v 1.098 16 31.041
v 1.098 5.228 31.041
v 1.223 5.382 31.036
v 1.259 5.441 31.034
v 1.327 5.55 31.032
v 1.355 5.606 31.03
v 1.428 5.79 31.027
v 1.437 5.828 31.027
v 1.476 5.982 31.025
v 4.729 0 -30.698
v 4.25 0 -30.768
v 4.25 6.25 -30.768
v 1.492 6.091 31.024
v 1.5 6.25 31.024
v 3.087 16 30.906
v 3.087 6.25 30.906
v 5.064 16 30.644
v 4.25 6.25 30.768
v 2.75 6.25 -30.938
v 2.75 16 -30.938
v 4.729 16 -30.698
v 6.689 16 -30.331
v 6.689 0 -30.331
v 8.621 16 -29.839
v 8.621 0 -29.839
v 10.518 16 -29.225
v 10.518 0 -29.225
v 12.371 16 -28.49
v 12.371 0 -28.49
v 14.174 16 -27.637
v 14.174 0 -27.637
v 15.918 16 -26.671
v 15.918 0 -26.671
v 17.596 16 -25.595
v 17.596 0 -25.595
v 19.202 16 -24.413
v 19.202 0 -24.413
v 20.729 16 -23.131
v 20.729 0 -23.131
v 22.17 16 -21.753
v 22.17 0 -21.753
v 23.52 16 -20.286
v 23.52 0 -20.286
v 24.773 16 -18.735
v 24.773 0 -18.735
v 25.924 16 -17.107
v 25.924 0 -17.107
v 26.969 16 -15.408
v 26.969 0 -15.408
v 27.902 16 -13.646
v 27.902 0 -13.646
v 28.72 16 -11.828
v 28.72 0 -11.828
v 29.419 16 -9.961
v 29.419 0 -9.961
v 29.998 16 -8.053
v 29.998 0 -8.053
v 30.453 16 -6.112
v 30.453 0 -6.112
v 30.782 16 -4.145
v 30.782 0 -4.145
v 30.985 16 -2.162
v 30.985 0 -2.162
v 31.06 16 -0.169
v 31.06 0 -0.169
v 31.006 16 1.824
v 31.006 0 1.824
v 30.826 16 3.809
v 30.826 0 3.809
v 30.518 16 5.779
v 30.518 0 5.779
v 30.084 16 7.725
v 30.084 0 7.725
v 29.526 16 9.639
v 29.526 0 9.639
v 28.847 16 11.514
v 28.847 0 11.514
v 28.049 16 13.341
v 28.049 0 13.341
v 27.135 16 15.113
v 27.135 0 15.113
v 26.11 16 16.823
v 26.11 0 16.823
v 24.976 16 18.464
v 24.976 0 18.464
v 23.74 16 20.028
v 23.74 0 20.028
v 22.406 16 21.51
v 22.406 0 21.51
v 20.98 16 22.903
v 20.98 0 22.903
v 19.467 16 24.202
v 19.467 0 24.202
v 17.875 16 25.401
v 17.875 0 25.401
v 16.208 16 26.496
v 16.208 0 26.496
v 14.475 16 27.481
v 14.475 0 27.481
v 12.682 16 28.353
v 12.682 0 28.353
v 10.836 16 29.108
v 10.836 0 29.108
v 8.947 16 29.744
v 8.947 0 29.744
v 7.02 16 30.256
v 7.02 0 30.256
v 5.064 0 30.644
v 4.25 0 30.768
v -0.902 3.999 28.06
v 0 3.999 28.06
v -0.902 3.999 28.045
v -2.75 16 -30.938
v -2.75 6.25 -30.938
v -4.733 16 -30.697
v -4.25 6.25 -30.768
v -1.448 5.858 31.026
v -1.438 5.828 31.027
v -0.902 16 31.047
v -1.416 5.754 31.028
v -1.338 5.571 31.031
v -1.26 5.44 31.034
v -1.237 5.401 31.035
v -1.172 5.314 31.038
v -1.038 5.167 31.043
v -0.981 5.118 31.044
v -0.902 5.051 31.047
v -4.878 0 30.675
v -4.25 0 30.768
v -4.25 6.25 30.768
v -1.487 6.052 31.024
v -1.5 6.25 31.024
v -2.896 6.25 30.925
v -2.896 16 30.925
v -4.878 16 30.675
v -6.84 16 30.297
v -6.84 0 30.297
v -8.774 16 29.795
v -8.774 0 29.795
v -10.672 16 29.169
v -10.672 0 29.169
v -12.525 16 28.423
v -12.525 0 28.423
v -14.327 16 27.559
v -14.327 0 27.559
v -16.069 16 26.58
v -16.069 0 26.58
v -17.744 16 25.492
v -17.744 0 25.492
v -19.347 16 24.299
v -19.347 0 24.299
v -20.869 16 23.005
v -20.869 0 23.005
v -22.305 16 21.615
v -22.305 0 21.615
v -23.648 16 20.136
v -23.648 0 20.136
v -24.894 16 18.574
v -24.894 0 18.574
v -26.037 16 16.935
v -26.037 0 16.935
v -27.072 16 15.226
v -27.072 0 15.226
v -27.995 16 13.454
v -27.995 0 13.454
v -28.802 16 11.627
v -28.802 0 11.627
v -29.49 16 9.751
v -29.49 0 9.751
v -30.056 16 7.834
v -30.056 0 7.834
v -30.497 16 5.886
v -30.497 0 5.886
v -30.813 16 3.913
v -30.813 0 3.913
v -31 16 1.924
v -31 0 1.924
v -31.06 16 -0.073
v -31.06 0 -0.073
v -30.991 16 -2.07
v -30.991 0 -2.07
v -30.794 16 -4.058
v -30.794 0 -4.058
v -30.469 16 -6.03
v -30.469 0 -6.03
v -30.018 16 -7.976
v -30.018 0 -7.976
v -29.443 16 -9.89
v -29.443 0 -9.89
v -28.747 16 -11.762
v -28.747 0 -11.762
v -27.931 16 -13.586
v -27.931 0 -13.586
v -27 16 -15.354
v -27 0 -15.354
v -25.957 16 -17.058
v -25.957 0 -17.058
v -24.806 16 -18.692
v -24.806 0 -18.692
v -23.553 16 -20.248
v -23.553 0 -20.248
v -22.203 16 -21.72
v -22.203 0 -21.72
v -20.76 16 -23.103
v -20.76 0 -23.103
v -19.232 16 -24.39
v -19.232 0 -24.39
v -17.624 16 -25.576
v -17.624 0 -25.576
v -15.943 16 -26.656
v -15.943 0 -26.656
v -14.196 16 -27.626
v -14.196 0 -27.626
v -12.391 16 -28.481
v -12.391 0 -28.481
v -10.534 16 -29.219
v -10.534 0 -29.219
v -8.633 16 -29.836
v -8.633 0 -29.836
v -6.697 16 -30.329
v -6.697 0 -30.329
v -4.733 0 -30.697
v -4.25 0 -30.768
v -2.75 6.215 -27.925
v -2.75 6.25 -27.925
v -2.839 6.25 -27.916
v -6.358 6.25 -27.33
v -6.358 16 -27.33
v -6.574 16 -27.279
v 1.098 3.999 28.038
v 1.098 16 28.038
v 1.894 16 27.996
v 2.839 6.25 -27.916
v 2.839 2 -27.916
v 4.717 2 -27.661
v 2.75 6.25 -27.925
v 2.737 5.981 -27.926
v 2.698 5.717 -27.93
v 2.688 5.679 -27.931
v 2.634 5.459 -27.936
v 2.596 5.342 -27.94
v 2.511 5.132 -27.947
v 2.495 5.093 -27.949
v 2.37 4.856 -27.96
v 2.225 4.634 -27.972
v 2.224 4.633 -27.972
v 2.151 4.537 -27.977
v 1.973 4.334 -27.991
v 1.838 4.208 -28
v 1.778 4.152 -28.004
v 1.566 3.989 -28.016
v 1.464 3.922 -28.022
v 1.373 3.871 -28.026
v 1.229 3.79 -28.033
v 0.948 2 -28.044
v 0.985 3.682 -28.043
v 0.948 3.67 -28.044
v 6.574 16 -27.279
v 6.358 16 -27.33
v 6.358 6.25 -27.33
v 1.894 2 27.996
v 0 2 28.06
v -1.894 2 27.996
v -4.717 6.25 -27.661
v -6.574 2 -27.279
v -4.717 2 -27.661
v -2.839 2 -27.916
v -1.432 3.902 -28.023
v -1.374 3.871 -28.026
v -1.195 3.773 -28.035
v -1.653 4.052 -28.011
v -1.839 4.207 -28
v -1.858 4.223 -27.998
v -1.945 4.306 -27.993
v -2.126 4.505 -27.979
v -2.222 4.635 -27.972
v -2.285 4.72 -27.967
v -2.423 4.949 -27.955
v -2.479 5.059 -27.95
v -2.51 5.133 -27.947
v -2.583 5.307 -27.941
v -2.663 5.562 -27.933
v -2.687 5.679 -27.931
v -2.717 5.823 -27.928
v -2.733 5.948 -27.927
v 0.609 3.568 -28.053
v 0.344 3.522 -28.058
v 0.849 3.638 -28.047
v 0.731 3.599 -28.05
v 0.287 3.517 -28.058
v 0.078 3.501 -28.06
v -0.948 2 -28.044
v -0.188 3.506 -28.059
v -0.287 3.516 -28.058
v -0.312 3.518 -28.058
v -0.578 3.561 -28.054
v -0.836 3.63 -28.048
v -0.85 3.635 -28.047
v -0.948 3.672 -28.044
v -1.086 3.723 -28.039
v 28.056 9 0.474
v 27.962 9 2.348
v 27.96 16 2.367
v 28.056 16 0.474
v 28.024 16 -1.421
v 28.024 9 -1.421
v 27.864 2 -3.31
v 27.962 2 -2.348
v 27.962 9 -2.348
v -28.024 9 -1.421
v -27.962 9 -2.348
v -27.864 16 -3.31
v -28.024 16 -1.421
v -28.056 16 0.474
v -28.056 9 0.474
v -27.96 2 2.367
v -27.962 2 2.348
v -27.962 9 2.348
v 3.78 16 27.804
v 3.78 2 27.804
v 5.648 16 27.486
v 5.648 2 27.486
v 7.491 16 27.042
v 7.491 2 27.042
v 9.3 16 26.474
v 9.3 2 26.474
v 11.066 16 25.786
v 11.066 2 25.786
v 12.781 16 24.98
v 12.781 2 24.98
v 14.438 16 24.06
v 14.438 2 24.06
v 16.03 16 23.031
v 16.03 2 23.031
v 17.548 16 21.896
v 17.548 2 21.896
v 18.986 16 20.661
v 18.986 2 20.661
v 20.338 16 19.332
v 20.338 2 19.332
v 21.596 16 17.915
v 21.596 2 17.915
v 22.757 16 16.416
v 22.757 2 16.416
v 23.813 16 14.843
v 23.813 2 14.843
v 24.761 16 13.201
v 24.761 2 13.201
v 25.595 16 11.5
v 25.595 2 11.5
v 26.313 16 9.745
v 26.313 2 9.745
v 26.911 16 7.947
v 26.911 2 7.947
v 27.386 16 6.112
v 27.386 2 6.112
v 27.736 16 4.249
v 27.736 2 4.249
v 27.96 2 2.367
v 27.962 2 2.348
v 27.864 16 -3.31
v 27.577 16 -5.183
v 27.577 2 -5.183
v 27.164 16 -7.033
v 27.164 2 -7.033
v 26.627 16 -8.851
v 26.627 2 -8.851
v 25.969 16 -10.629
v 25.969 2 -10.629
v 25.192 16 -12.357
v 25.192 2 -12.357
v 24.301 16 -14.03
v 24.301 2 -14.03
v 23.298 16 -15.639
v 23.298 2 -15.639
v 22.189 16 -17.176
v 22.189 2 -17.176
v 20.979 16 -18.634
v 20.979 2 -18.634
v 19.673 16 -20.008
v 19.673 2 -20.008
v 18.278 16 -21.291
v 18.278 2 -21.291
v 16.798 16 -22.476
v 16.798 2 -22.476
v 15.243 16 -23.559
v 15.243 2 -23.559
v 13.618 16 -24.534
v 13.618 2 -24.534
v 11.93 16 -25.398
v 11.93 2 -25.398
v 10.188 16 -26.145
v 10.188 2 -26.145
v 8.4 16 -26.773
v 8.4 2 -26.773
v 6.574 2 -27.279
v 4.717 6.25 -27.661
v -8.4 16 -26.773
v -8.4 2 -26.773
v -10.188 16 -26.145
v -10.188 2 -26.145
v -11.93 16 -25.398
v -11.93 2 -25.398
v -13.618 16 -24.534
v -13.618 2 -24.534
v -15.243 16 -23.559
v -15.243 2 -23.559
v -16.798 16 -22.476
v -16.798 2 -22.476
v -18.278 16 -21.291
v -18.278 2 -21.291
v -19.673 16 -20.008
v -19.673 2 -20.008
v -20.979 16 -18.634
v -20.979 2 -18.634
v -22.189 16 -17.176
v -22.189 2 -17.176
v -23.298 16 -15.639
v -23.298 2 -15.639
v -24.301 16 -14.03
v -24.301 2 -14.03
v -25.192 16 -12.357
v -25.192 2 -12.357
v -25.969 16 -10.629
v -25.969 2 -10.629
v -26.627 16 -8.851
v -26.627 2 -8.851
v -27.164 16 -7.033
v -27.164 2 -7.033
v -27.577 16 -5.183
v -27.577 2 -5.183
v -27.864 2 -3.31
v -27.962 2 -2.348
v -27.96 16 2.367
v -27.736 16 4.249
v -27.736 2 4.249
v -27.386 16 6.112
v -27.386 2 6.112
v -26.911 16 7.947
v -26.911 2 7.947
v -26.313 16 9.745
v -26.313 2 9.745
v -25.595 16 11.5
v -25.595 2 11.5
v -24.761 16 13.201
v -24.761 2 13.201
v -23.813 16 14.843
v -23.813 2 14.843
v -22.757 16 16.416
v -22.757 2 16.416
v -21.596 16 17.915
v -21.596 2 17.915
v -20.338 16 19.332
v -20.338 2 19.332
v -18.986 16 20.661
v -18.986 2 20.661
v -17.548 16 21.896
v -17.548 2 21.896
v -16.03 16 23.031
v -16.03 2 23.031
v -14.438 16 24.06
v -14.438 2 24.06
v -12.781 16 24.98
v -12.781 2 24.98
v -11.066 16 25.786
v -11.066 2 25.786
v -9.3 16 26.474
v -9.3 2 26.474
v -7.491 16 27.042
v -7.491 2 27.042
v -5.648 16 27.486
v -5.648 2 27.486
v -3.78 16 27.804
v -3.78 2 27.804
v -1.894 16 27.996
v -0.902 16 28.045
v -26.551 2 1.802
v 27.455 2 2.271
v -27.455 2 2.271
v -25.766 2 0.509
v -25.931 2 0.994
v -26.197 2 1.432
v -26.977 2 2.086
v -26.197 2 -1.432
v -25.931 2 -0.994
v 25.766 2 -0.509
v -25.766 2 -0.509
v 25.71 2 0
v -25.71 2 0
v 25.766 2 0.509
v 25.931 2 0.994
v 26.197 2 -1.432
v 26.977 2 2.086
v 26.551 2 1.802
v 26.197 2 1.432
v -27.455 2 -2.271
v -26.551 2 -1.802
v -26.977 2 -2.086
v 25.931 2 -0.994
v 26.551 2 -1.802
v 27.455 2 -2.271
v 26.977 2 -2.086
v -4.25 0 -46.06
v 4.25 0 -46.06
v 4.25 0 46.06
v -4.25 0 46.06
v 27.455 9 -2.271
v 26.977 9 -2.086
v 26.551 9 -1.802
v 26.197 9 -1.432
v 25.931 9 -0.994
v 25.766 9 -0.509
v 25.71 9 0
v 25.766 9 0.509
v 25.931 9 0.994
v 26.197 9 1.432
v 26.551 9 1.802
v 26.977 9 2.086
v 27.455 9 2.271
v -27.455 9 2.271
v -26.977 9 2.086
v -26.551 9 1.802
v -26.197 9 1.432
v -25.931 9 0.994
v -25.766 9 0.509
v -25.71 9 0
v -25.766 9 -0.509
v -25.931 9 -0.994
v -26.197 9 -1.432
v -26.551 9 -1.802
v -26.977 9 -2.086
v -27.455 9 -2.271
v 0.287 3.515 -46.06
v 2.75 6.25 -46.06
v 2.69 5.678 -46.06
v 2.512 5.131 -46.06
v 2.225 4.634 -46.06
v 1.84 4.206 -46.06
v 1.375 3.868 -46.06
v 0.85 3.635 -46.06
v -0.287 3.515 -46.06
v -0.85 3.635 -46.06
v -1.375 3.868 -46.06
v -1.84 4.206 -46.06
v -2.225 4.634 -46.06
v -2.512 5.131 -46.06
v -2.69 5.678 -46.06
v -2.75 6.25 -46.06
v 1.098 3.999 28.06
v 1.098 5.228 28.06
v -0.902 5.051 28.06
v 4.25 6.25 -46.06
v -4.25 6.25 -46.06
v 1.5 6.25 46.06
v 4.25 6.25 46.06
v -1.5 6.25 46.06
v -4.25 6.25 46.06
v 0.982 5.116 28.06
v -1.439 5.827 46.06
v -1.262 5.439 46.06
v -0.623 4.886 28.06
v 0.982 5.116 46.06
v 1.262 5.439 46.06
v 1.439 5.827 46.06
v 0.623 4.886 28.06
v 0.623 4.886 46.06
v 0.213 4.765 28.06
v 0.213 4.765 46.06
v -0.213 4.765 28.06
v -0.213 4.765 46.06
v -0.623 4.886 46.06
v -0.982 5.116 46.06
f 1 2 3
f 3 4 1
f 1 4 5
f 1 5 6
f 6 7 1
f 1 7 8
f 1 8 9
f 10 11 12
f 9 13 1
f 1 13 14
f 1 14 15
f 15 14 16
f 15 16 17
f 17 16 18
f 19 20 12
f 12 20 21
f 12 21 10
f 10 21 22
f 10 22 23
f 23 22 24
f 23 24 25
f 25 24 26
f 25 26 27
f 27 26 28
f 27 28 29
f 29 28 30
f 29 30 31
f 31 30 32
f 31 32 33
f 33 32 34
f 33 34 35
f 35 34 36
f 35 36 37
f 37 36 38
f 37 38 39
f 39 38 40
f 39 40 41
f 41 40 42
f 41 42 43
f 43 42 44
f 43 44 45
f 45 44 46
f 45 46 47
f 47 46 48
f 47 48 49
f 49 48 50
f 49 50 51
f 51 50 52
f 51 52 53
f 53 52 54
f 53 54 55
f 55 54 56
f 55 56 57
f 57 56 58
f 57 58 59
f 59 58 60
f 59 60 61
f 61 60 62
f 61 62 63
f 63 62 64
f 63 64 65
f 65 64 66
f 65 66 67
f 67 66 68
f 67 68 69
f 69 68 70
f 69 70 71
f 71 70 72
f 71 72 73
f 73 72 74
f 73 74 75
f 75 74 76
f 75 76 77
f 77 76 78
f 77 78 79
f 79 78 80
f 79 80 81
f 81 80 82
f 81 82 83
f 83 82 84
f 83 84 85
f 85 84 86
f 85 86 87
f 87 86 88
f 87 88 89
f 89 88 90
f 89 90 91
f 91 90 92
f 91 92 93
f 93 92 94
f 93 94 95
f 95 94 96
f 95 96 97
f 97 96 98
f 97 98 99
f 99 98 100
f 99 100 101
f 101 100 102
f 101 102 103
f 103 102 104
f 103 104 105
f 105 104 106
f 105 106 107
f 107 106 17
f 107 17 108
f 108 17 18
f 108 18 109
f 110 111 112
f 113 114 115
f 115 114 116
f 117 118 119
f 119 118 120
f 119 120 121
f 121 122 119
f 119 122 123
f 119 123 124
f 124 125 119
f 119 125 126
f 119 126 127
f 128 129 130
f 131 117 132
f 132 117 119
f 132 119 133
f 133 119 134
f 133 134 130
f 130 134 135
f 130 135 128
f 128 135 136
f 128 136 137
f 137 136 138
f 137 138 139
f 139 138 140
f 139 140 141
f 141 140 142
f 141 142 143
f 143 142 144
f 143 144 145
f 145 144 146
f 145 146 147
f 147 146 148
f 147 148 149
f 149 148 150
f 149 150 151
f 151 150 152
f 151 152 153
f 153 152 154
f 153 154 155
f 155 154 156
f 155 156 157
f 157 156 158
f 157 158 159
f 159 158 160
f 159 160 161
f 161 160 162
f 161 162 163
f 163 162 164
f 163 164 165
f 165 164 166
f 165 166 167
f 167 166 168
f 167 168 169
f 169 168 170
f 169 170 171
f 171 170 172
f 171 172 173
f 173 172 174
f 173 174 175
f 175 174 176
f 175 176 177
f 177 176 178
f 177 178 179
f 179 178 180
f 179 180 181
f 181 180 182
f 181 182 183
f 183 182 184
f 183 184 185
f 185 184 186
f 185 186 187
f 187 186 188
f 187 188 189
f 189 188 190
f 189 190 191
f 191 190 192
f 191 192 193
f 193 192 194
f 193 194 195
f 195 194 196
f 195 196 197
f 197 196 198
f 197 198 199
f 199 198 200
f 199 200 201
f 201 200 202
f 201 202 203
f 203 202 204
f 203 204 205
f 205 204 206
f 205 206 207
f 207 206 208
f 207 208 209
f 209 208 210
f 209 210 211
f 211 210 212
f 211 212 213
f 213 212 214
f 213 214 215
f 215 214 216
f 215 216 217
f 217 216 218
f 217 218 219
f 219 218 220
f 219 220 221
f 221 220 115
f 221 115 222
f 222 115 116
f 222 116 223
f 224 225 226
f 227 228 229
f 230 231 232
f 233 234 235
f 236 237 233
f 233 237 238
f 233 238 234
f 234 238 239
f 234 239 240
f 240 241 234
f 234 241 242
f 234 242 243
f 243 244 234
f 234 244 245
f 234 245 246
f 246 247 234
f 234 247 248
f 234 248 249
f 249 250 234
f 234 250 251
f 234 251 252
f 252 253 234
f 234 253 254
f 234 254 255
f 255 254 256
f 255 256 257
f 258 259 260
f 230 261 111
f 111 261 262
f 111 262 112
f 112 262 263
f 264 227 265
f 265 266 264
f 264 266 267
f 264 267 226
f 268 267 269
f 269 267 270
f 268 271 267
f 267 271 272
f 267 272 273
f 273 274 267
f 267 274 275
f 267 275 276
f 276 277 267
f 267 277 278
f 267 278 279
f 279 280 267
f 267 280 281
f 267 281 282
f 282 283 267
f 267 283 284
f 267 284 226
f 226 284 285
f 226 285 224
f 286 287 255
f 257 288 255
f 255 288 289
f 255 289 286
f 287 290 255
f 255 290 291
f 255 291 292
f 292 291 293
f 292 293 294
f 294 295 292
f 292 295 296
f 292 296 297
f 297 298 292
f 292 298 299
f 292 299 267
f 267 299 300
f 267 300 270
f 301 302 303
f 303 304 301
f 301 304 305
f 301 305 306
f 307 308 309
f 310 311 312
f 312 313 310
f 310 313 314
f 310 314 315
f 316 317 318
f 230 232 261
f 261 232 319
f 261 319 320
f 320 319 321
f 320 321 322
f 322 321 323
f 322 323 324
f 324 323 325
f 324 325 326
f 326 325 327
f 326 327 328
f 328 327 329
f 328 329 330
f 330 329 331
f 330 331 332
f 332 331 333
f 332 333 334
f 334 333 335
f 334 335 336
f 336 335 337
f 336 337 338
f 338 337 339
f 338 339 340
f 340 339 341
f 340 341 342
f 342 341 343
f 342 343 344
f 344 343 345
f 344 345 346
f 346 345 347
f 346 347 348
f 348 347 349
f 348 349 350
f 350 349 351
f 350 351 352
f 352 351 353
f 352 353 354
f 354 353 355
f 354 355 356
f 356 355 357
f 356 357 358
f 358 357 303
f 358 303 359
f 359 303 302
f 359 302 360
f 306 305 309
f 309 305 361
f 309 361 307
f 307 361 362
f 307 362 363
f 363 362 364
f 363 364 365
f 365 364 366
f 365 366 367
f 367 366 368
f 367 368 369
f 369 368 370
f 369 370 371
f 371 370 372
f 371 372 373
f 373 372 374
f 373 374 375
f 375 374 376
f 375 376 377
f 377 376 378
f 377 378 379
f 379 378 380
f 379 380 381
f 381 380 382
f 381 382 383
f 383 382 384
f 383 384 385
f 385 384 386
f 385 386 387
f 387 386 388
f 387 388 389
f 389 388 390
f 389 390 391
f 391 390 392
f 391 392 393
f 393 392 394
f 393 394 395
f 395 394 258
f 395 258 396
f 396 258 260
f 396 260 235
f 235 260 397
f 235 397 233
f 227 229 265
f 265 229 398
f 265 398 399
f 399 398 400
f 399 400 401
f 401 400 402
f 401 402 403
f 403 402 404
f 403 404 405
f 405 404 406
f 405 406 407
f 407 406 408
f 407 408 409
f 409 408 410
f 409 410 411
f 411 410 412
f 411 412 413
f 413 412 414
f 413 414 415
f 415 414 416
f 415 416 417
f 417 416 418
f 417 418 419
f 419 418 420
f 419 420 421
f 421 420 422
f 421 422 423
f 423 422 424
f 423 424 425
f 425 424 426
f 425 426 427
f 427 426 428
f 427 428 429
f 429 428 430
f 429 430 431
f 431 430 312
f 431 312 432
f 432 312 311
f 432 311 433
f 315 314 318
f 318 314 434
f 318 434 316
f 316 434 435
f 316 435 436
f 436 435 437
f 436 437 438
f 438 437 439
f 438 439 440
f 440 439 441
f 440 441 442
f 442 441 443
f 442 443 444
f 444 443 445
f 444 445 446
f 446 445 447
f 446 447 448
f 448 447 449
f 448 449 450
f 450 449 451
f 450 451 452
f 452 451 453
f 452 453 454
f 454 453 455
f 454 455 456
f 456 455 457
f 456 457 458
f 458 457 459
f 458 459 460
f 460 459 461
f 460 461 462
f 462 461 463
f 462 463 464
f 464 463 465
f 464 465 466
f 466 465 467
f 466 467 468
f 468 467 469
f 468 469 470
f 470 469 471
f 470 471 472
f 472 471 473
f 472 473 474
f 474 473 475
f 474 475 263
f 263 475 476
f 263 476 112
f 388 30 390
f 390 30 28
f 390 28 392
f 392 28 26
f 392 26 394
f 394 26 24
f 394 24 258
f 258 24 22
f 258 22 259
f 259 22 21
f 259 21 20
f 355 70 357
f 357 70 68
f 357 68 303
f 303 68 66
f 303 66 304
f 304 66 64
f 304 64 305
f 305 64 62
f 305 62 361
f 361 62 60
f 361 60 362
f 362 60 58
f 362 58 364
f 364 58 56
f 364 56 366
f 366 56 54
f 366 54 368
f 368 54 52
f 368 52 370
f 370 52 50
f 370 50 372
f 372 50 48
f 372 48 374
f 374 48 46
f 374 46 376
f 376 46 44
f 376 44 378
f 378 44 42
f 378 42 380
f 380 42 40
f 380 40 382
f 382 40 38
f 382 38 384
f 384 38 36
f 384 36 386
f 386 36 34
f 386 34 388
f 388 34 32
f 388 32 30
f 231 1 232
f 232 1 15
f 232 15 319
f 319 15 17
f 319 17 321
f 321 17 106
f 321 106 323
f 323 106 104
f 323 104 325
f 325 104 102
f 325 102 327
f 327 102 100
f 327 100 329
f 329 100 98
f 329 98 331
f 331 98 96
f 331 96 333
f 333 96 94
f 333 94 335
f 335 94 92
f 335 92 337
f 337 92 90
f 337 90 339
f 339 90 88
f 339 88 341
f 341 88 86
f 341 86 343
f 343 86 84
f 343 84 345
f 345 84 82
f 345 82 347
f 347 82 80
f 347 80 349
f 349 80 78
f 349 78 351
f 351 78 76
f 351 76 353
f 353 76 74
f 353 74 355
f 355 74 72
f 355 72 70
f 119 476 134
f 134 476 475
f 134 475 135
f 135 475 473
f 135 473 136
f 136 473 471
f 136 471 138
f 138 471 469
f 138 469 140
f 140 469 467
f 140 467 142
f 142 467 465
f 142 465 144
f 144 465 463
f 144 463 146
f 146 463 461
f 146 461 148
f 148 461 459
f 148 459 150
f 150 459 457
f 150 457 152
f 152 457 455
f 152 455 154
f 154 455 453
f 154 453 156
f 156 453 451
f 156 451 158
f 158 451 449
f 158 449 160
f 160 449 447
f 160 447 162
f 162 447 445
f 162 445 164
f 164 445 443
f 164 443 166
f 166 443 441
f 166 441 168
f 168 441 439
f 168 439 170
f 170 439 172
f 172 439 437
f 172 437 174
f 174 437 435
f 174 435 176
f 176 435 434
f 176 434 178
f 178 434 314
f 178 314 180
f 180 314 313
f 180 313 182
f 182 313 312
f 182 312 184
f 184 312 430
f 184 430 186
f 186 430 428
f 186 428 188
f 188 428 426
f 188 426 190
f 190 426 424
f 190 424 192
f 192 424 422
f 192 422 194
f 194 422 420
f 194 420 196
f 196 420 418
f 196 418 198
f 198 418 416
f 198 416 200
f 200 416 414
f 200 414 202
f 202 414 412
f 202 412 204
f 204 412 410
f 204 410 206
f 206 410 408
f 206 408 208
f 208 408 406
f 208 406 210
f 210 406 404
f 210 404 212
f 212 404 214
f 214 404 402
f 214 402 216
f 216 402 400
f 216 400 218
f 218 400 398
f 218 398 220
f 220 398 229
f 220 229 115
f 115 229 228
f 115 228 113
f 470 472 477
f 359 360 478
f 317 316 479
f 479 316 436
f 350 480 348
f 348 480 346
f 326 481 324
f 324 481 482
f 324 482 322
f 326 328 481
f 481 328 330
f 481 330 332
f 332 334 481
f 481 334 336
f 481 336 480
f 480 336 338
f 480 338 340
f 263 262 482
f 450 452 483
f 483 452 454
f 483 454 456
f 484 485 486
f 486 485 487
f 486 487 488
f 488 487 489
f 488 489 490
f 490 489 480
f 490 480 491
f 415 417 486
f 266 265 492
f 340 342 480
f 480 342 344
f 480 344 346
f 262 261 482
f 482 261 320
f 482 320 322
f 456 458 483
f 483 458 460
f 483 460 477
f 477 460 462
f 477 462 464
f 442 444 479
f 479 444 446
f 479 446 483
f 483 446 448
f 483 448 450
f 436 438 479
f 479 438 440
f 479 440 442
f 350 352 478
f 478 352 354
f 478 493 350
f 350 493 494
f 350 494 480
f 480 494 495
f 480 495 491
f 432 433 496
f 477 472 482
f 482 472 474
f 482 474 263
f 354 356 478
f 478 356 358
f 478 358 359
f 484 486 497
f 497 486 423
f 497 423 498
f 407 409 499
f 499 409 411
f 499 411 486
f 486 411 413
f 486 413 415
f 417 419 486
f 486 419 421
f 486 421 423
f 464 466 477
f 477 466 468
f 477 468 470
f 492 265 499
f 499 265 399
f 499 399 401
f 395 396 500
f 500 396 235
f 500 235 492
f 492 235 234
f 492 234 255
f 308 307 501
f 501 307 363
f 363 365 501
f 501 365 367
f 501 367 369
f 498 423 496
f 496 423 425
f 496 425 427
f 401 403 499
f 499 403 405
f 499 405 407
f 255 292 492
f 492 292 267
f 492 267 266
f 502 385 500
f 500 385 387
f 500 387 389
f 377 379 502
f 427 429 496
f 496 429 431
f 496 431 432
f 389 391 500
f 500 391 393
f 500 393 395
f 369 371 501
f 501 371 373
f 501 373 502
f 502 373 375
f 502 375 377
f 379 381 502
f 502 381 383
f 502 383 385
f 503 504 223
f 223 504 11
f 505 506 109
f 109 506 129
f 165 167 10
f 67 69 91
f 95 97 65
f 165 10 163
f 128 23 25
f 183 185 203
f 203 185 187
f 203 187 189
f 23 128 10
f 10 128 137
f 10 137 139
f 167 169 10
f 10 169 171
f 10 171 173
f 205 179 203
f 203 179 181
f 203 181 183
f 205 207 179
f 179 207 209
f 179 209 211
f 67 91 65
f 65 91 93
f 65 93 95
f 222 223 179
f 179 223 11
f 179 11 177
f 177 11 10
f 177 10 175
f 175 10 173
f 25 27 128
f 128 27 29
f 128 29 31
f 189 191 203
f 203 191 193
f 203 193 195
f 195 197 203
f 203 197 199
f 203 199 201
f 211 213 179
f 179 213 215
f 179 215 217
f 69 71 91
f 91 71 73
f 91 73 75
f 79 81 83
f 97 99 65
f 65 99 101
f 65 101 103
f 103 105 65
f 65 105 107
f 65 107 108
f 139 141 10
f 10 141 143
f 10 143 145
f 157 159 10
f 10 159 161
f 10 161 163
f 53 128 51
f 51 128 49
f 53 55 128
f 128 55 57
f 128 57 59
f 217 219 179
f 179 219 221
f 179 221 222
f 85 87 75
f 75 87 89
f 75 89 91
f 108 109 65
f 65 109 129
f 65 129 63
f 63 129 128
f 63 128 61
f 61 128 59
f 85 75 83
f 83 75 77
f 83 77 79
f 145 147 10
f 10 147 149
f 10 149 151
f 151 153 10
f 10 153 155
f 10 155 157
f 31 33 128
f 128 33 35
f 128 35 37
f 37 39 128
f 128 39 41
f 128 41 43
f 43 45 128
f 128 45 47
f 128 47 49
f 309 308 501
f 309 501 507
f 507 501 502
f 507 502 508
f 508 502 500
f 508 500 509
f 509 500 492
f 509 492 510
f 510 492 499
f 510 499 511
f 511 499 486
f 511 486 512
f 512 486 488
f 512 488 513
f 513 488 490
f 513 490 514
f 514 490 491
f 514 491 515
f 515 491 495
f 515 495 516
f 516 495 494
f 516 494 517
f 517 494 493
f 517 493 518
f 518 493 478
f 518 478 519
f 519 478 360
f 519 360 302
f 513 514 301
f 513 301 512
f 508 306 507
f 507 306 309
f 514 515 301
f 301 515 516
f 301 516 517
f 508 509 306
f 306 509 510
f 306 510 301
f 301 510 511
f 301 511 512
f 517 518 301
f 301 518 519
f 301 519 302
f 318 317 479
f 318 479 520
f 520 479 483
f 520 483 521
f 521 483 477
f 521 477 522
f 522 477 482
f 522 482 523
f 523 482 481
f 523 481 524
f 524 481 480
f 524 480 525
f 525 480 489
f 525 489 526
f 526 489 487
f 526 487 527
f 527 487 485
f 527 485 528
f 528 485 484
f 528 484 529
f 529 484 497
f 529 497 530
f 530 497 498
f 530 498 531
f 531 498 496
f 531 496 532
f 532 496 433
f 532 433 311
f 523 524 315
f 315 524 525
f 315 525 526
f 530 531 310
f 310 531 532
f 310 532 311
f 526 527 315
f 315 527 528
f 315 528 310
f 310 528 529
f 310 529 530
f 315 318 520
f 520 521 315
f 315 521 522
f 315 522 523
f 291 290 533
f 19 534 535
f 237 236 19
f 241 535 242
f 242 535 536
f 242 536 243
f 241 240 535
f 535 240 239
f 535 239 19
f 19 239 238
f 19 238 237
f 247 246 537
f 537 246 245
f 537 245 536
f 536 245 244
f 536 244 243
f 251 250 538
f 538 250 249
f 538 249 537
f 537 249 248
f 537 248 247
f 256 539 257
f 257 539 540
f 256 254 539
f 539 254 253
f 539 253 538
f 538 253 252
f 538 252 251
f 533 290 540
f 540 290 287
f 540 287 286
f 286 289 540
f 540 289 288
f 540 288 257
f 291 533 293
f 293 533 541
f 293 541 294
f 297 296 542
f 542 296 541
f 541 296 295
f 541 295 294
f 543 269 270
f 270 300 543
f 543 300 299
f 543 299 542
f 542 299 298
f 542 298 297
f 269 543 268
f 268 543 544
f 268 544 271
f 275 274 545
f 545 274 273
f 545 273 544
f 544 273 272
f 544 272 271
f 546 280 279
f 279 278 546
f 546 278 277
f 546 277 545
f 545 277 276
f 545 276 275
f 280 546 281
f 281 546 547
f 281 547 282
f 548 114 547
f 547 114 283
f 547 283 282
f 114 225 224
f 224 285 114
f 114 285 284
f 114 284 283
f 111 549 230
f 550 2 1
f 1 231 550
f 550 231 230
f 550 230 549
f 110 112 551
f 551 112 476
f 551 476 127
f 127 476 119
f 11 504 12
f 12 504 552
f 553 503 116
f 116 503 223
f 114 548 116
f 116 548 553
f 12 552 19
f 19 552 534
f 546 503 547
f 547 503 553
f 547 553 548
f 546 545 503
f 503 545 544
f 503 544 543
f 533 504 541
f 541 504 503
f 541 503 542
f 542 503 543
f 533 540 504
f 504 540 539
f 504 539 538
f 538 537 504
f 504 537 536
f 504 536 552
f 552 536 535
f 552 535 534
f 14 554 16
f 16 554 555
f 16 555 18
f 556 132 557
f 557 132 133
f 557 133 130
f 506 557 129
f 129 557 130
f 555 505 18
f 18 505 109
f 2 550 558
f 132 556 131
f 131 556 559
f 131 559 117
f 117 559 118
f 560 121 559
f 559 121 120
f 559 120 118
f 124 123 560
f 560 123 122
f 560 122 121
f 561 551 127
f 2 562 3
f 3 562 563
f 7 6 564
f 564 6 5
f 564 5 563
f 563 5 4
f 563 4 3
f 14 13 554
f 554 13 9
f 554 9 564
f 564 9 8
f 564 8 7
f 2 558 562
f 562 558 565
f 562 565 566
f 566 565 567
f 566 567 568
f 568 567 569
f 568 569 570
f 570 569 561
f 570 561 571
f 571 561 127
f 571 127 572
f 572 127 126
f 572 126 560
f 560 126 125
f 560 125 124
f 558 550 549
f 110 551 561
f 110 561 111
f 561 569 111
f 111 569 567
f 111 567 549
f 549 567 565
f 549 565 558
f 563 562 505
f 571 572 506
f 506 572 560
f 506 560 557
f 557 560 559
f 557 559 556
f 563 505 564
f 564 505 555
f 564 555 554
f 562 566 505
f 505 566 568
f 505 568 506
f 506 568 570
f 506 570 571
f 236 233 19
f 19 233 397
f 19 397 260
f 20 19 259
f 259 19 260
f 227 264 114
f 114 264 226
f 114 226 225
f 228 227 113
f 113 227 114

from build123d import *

# Parameters (mm, degrees)
SKETCH1_R           = 31.06
BOSS_EXTRUDE1_DEPTH = 16
SKETCH2_R           = 28.06
CUT_EXTRUDE1_DEPTH  = 14
BOSS_EXTRUDE2_DEPTH = 7
CUT_EXTRUDE2_DEPTH  = 47.748766829
SKETCH5_W           = 2
SKETCH5_H           = 12.000963959
CUT_EXTRUDE3_DEPTH  = 47.748766998
BOSS_EXTRUDE3_DEPTH = 18
BOSS_EXTRUDE4_DEPTH = 18
CUT_EXTRUDE4_DEPTH  = 9.75


with BuildPart() as part:
    # Sketch1 → Boss-Extrude1 (new body)
    with BuildSketch(Plane(origin=(0, 0, 0), x_dir=(1, 0, 0), z_dir=(0, 1, 0))):
        with Locations(Location((0, 0, 0), (0, 0, 270))):
            Circle(SKETCH1_R)
    extrude(amount=BOSS_EXTRUDE1_DEPTH)

    # Sketch2 → Cut-Extrude1 (cut)
    with BuildSketch(Plane(origin=(0, 16, 0), x_dir=(1, 0, 0), z_dir=(0, 1, 0))):
        with Locations(Location((0, 0, 0), (0, 0, 270))):
            Circle(SKETCH2_R)
    extrude(amount=-CUT_EXTRUDE1_DEPTH, mode=Mode.SUBTRACT)

    # Sketch3 → Boss-Extrude2 (add)
    with BuildSketch(Plane(origin=(0, 2, 0), x_dir=(1, 0, 0), z_dir=(0, 1, 0))):
        with BuildLine():
            ThreePointArc((-27.961594797, -2.347938759), (-25.71, 0), (-27.961594797, 2.347938759))
            ThreePointArc((-27.961594797, 2.347938759), (-28.06, 0), (-27.961594797, -2.347938759))
        make_face()
        with BuildLine():
            ThreePointArc((27.961594797, 2.347938759), (25.71, 0), (27.961594797, -2.347938759))
            ThreePointArc((27.961594797, -2.347938759), (28.06, 0), (27.961594797, 2.347938759))
        make_face()
    extrude(amount=BOSS_EXTRUDE2_DEPTH)

    # Sketch4 → Cut-Extrude2 (cut, through all)
    with BuildSketch(Plane.XY):
        with BuildLine():
            Line((2.75, 6.25), (2.75, 16))
            Line((2.75, 16), (-2.75, 16))
            Line((-2.75, 16), (-2.75, 6.25))
            ThreePointArc((-2.75, 6.25), (-1.944543648, 4.305456352), (0, 3.5))
            ThreePointArc((0, 3.5), (1.944543648, 4.305456352), (2.75, 6.25))
        make_face()
    extrude(amount=-CUT_EXTRUDE2_DEPTH, mode=Mode.SUBTRACT)

    # Sketch5 → Cut-Extrude3 (cut, through all)
    with BuildSketch(Plane.XY):
        with Locations((0.098176677, 9.999518021)):
            Rectangle(SKETCH5_W, SKETCH5_H)
    extrude(amount=CUT_EXTRUDE3_DEPTH, mode=Mode.SUBTRACT)

    # Sketch6 → Boss-Extrude3 (add)
    with BuildSketch(Plane.XY.offset(-28.06)):
        with BuildLine():
            Line((-4.25, 0), (4.25, 0))
            Line((4.25, 0), (4.25, 6.25))
            Line((4.25, 6.25), (2.75, 6.25))
            ThreePointArc((2.75, 6.25), (0, 3.5), (-2.75, 6.25))
            Line((-2.75, 6.25), (-4.25, 6.25))
            Line((-4.25, 6.25), (-4.25, 0))
        make_face()
    extrude(amount=-BOSS_EXTRUDE3_DEPTH)

    # Sketch7 → Boss-Extrude4 (add)
    with BuildSketch(Plane(origin=(0, 0, 28.06), x_dir=(-1, 0, 0), z_dir=(0, 0, -1))):
        with BuildLine():
            Line((4.25, 6.25), (1.5, 6.25))
            ThreePointArc((1.5, 6.25), (0, 4.75), (-1.5, 6.25))
            Line((-1.5, 6.25), (-4.25, 6.25))
            Line((-4.25, 6.25), (-4.25, 0))
            Line((-4.25, 0), (4.25, 0))
            Line((4.25, 0), (4.25, 6.25))
        make_face()
    extrude(amount=-BOSS_EXTRUDE4_DEPTH)

    # Sketch8 → Cut-Extrude4 (cut)
    with BuildSketch(Plane(origin=(0, 16, 0), x_dir=(1, 0, 0), z_dir=(0, 1, 0))):
        with BuildLine():
            Line((2.75, 27.924918979), (2.75, 30.938020299))
            Line((2.75, 30.938020299), (6.357775263, 27.330245036))
            ThreePointArc((6.357775263, 27.330245036), (4.563584319, 27.686409991), (2.75, 27.924918979))
        make_face()
        with BuildLine():
            Line((-2.75, 27.924918979), (-2.75, 30.938020299))
            Line((-2.75, 30.938020299), (-6.357775263, 27.330245036))
            ThreePointArc((-6.357775263, 27.330245036), (-4.563584319, 27.686409991), (-2.75, 27.924918979))
        make_face()
    extrude(amount=-CUT_EXTRUDE4_DEPTH, mode=Mode.SUBTRACT)


solid = part.part
